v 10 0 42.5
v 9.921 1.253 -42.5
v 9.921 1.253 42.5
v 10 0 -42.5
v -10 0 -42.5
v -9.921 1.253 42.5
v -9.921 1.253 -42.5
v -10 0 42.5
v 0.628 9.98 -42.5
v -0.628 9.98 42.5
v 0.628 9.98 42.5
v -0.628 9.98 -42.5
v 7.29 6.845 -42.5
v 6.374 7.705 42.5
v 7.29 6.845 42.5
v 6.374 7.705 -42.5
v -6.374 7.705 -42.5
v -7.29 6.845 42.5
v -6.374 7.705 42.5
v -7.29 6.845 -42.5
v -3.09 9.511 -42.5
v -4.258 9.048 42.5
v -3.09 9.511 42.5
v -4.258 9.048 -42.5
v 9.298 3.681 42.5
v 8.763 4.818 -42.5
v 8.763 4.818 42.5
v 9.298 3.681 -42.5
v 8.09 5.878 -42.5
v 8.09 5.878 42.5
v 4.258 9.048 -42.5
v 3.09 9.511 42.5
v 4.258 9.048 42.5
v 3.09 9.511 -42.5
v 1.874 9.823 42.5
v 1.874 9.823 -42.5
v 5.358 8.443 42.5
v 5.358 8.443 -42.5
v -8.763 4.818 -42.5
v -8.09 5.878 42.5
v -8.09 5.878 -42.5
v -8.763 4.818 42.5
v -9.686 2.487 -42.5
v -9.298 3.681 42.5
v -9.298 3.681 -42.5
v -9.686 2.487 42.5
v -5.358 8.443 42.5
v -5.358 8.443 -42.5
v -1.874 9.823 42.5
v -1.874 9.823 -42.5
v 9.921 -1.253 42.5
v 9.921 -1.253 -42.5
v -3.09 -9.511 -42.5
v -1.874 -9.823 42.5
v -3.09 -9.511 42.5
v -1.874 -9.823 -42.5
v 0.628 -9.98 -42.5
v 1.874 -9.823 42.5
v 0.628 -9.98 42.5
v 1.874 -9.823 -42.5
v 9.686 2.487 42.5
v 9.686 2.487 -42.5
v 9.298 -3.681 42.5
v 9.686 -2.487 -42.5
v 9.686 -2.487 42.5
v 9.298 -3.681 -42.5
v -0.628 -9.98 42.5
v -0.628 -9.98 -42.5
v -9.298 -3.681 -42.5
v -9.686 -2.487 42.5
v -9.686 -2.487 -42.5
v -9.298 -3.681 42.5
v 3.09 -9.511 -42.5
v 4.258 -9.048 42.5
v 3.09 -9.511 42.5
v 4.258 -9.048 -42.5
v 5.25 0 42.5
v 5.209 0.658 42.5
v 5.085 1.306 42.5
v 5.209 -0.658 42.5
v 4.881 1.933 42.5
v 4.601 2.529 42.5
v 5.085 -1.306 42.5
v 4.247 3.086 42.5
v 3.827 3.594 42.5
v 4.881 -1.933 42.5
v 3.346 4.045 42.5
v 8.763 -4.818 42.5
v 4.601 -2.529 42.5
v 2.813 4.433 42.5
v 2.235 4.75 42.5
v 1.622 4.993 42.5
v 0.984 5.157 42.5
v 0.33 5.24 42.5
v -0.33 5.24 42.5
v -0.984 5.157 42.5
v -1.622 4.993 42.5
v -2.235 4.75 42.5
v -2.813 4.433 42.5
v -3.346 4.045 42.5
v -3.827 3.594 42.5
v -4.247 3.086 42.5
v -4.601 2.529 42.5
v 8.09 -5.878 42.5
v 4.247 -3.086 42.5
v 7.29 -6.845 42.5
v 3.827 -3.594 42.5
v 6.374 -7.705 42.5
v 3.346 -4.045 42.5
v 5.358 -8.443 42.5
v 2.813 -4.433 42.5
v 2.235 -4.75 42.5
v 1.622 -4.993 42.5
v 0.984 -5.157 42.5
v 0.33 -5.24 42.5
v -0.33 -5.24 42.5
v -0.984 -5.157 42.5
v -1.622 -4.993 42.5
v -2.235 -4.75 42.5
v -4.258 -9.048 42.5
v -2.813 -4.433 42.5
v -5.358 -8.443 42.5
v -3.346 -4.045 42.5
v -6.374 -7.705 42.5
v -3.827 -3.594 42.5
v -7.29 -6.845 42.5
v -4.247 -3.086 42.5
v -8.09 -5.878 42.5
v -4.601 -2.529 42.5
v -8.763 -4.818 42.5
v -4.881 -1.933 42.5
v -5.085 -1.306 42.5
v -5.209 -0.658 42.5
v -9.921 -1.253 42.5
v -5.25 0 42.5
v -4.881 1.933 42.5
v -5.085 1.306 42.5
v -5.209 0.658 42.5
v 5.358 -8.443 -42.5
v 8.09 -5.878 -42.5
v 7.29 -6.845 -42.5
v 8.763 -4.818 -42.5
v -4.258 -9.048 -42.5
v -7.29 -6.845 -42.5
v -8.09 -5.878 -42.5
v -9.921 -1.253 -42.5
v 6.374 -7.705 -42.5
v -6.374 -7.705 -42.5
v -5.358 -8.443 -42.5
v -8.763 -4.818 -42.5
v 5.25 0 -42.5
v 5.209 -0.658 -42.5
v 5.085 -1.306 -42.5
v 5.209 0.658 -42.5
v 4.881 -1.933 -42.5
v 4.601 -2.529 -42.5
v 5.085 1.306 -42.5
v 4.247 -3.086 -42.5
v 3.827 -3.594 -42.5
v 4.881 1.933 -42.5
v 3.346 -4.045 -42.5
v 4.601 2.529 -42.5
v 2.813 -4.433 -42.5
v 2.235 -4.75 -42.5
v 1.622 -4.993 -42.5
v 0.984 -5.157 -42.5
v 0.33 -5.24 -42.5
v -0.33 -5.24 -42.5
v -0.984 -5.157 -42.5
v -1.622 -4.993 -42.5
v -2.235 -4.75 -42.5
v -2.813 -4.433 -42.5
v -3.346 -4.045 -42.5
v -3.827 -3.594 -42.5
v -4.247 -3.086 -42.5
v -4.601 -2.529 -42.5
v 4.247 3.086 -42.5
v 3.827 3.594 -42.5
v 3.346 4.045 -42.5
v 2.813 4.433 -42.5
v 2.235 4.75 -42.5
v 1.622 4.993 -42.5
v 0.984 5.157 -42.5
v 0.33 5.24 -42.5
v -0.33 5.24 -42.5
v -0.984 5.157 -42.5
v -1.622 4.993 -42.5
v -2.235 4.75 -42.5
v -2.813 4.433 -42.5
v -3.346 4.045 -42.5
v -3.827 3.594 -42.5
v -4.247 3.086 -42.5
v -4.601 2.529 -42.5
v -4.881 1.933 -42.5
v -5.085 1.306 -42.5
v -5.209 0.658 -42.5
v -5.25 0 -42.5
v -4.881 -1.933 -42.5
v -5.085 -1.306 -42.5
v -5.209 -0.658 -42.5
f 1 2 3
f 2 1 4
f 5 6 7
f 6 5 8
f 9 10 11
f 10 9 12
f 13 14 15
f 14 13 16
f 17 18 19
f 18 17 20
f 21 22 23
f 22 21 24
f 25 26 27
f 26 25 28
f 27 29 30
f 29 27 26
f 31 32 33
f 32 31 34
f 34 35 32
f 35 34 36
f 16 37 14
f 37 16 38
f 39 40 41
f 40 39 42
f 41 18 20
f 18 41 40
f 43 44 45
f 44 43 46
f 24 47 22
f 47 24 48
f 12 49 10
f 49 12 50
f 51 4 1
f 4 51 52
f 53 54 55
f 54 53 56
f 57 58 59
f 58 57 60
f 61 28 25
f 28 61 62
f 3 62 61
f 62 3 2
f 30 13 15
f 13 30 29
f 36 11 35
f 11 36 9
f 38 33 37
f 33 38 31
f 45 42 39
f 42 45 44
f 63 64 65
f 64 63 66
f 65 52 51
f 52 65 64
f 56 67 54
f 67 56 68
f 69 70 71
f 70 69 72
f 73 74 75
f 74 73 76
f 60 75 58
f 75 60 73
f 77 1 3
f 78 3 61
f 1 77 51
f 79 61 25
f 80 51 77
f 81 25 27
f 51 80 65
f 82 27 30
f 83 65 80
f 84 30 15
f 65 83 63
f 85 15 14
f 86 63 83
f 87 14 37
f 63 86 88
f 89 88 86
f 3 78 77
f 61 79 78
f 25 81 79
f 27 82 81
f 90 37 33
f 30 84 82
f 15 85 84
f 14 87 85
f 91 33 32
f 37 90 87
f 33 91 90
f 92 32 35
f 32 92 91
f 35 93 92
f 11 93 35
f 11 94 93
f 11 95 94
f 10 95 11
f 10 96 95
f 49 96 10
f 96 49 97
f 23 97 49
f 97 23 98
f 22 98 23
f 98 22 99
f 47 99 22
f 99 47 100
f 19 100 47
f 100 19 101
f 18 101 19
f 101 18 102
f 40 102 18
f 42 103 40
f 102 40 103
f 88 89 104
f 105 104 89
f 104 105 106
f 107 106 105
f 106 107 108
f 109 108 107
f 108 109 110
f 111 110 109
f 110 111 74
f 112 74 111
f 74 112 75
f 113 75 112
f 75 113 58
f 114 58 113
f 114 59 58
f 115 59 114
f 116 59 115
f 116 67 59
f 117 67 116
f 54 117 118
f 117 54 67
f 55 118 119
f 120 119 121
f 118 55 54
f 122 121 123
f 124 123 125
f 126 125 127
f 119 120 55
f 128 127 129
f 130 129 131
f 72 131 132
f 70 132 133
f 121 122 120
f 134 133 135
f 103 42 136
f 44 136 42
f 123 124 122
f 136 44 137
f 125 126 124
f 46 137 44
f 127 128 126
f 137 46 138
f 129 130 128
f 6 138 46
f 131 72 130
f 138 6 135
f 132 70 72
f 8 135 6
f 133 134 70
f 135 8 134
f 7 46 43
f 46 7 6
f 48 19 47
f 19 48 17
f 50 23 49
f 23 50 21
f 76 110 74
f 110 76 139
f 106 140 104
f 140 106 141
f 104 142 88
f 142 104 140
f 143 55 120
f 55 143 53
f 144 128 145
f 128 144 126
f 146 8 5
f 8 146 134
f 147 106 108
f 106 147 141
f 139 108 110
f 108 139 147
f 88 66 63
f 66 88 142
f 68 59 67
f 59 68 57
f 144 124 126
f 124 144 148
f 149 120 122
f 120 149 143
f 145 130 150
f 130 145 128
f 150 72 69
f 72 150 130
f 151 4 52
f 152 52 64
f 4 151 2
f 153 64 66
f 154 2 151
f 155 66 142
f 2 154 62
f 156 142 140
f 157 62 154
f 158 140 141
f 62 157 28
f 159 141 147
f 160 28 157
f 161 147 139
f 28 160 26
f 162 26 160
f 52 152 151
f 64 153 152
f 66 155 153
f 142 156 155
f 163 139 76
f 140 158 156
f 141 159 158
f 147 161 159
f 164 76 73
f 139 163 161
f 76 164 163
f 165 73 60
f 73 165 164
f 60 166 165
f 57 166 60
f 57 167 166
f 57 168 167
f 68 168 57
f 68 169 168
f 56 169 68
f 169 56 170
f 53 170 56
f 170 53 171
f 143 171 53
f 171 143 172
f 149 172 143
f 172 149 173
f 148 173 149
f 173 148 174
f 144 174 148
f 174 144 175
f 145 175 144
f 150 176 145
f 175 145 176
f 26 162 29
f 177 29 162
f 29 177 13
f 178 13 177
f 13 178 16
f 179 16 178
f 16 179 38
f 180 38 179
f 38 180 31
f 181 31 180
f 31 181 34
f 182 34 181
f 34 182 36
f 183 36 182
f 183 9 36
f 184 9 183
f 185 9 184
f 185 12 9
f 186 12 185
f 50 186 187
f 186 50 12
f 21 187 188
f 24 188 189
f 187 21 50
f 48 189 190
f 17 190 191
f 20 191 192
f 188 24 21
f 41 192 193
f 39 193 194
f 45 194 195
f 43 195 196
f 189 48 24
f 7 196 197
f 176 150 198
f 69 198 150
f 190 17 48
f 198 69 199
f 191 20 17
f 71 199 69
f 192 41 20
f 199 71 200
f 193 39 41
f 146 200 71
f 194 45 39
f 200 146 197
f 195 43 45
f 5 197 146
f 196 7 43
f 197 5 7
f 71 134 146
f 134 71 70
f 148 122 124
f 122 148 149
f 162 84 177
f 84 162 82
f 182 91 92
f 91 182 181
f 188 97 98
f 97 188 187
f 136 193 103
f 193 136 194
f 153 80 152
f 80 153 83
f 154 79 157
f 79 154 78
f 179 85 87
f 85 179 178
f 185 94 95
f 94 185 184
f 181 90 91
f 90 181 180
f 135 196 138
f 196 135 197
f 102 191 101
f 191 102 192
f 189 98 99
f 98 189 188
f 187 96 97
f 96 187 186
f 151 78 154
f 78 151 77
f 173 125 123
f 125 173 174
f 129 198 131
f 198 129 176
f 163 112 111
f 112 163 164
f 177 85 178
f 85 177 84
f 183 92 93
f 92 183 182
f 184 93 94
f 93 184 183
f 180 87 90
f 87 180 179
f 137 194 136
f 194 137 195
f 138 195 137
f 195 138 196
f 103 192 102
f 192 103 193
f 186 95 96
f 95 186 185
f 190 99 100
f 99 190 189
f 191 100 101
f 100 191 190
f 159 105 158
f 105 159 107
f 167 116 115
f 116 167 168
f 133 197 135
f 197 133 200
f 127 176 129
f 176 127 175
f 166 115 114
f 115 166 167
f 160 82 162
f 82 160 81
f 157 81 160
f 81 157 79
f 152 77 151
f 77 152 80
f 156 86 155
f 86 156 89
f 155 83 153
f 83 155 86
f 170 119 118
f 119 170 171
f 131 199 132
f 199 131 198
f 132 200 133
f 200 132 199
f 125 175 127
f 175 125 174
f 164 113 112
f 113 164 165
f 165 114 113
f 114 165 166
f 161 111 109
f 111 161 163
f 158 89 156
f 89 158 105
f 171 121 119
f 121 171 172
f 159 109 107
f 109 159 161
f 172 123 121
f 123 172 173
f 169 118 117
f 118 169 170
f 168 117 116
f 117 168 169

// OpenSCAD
$fn = 50;


difference() {
	union() {
		translate(v = [0, 0, -42.5000000000]) {
			cylinder(h = 85, r = 10.0000000000);
		}
	}
	union() {
		translate(v = [0, 0, -100.0000000000]) {
			cylinder(h = 200, r = 5.2500000000);
		}
	}
}
